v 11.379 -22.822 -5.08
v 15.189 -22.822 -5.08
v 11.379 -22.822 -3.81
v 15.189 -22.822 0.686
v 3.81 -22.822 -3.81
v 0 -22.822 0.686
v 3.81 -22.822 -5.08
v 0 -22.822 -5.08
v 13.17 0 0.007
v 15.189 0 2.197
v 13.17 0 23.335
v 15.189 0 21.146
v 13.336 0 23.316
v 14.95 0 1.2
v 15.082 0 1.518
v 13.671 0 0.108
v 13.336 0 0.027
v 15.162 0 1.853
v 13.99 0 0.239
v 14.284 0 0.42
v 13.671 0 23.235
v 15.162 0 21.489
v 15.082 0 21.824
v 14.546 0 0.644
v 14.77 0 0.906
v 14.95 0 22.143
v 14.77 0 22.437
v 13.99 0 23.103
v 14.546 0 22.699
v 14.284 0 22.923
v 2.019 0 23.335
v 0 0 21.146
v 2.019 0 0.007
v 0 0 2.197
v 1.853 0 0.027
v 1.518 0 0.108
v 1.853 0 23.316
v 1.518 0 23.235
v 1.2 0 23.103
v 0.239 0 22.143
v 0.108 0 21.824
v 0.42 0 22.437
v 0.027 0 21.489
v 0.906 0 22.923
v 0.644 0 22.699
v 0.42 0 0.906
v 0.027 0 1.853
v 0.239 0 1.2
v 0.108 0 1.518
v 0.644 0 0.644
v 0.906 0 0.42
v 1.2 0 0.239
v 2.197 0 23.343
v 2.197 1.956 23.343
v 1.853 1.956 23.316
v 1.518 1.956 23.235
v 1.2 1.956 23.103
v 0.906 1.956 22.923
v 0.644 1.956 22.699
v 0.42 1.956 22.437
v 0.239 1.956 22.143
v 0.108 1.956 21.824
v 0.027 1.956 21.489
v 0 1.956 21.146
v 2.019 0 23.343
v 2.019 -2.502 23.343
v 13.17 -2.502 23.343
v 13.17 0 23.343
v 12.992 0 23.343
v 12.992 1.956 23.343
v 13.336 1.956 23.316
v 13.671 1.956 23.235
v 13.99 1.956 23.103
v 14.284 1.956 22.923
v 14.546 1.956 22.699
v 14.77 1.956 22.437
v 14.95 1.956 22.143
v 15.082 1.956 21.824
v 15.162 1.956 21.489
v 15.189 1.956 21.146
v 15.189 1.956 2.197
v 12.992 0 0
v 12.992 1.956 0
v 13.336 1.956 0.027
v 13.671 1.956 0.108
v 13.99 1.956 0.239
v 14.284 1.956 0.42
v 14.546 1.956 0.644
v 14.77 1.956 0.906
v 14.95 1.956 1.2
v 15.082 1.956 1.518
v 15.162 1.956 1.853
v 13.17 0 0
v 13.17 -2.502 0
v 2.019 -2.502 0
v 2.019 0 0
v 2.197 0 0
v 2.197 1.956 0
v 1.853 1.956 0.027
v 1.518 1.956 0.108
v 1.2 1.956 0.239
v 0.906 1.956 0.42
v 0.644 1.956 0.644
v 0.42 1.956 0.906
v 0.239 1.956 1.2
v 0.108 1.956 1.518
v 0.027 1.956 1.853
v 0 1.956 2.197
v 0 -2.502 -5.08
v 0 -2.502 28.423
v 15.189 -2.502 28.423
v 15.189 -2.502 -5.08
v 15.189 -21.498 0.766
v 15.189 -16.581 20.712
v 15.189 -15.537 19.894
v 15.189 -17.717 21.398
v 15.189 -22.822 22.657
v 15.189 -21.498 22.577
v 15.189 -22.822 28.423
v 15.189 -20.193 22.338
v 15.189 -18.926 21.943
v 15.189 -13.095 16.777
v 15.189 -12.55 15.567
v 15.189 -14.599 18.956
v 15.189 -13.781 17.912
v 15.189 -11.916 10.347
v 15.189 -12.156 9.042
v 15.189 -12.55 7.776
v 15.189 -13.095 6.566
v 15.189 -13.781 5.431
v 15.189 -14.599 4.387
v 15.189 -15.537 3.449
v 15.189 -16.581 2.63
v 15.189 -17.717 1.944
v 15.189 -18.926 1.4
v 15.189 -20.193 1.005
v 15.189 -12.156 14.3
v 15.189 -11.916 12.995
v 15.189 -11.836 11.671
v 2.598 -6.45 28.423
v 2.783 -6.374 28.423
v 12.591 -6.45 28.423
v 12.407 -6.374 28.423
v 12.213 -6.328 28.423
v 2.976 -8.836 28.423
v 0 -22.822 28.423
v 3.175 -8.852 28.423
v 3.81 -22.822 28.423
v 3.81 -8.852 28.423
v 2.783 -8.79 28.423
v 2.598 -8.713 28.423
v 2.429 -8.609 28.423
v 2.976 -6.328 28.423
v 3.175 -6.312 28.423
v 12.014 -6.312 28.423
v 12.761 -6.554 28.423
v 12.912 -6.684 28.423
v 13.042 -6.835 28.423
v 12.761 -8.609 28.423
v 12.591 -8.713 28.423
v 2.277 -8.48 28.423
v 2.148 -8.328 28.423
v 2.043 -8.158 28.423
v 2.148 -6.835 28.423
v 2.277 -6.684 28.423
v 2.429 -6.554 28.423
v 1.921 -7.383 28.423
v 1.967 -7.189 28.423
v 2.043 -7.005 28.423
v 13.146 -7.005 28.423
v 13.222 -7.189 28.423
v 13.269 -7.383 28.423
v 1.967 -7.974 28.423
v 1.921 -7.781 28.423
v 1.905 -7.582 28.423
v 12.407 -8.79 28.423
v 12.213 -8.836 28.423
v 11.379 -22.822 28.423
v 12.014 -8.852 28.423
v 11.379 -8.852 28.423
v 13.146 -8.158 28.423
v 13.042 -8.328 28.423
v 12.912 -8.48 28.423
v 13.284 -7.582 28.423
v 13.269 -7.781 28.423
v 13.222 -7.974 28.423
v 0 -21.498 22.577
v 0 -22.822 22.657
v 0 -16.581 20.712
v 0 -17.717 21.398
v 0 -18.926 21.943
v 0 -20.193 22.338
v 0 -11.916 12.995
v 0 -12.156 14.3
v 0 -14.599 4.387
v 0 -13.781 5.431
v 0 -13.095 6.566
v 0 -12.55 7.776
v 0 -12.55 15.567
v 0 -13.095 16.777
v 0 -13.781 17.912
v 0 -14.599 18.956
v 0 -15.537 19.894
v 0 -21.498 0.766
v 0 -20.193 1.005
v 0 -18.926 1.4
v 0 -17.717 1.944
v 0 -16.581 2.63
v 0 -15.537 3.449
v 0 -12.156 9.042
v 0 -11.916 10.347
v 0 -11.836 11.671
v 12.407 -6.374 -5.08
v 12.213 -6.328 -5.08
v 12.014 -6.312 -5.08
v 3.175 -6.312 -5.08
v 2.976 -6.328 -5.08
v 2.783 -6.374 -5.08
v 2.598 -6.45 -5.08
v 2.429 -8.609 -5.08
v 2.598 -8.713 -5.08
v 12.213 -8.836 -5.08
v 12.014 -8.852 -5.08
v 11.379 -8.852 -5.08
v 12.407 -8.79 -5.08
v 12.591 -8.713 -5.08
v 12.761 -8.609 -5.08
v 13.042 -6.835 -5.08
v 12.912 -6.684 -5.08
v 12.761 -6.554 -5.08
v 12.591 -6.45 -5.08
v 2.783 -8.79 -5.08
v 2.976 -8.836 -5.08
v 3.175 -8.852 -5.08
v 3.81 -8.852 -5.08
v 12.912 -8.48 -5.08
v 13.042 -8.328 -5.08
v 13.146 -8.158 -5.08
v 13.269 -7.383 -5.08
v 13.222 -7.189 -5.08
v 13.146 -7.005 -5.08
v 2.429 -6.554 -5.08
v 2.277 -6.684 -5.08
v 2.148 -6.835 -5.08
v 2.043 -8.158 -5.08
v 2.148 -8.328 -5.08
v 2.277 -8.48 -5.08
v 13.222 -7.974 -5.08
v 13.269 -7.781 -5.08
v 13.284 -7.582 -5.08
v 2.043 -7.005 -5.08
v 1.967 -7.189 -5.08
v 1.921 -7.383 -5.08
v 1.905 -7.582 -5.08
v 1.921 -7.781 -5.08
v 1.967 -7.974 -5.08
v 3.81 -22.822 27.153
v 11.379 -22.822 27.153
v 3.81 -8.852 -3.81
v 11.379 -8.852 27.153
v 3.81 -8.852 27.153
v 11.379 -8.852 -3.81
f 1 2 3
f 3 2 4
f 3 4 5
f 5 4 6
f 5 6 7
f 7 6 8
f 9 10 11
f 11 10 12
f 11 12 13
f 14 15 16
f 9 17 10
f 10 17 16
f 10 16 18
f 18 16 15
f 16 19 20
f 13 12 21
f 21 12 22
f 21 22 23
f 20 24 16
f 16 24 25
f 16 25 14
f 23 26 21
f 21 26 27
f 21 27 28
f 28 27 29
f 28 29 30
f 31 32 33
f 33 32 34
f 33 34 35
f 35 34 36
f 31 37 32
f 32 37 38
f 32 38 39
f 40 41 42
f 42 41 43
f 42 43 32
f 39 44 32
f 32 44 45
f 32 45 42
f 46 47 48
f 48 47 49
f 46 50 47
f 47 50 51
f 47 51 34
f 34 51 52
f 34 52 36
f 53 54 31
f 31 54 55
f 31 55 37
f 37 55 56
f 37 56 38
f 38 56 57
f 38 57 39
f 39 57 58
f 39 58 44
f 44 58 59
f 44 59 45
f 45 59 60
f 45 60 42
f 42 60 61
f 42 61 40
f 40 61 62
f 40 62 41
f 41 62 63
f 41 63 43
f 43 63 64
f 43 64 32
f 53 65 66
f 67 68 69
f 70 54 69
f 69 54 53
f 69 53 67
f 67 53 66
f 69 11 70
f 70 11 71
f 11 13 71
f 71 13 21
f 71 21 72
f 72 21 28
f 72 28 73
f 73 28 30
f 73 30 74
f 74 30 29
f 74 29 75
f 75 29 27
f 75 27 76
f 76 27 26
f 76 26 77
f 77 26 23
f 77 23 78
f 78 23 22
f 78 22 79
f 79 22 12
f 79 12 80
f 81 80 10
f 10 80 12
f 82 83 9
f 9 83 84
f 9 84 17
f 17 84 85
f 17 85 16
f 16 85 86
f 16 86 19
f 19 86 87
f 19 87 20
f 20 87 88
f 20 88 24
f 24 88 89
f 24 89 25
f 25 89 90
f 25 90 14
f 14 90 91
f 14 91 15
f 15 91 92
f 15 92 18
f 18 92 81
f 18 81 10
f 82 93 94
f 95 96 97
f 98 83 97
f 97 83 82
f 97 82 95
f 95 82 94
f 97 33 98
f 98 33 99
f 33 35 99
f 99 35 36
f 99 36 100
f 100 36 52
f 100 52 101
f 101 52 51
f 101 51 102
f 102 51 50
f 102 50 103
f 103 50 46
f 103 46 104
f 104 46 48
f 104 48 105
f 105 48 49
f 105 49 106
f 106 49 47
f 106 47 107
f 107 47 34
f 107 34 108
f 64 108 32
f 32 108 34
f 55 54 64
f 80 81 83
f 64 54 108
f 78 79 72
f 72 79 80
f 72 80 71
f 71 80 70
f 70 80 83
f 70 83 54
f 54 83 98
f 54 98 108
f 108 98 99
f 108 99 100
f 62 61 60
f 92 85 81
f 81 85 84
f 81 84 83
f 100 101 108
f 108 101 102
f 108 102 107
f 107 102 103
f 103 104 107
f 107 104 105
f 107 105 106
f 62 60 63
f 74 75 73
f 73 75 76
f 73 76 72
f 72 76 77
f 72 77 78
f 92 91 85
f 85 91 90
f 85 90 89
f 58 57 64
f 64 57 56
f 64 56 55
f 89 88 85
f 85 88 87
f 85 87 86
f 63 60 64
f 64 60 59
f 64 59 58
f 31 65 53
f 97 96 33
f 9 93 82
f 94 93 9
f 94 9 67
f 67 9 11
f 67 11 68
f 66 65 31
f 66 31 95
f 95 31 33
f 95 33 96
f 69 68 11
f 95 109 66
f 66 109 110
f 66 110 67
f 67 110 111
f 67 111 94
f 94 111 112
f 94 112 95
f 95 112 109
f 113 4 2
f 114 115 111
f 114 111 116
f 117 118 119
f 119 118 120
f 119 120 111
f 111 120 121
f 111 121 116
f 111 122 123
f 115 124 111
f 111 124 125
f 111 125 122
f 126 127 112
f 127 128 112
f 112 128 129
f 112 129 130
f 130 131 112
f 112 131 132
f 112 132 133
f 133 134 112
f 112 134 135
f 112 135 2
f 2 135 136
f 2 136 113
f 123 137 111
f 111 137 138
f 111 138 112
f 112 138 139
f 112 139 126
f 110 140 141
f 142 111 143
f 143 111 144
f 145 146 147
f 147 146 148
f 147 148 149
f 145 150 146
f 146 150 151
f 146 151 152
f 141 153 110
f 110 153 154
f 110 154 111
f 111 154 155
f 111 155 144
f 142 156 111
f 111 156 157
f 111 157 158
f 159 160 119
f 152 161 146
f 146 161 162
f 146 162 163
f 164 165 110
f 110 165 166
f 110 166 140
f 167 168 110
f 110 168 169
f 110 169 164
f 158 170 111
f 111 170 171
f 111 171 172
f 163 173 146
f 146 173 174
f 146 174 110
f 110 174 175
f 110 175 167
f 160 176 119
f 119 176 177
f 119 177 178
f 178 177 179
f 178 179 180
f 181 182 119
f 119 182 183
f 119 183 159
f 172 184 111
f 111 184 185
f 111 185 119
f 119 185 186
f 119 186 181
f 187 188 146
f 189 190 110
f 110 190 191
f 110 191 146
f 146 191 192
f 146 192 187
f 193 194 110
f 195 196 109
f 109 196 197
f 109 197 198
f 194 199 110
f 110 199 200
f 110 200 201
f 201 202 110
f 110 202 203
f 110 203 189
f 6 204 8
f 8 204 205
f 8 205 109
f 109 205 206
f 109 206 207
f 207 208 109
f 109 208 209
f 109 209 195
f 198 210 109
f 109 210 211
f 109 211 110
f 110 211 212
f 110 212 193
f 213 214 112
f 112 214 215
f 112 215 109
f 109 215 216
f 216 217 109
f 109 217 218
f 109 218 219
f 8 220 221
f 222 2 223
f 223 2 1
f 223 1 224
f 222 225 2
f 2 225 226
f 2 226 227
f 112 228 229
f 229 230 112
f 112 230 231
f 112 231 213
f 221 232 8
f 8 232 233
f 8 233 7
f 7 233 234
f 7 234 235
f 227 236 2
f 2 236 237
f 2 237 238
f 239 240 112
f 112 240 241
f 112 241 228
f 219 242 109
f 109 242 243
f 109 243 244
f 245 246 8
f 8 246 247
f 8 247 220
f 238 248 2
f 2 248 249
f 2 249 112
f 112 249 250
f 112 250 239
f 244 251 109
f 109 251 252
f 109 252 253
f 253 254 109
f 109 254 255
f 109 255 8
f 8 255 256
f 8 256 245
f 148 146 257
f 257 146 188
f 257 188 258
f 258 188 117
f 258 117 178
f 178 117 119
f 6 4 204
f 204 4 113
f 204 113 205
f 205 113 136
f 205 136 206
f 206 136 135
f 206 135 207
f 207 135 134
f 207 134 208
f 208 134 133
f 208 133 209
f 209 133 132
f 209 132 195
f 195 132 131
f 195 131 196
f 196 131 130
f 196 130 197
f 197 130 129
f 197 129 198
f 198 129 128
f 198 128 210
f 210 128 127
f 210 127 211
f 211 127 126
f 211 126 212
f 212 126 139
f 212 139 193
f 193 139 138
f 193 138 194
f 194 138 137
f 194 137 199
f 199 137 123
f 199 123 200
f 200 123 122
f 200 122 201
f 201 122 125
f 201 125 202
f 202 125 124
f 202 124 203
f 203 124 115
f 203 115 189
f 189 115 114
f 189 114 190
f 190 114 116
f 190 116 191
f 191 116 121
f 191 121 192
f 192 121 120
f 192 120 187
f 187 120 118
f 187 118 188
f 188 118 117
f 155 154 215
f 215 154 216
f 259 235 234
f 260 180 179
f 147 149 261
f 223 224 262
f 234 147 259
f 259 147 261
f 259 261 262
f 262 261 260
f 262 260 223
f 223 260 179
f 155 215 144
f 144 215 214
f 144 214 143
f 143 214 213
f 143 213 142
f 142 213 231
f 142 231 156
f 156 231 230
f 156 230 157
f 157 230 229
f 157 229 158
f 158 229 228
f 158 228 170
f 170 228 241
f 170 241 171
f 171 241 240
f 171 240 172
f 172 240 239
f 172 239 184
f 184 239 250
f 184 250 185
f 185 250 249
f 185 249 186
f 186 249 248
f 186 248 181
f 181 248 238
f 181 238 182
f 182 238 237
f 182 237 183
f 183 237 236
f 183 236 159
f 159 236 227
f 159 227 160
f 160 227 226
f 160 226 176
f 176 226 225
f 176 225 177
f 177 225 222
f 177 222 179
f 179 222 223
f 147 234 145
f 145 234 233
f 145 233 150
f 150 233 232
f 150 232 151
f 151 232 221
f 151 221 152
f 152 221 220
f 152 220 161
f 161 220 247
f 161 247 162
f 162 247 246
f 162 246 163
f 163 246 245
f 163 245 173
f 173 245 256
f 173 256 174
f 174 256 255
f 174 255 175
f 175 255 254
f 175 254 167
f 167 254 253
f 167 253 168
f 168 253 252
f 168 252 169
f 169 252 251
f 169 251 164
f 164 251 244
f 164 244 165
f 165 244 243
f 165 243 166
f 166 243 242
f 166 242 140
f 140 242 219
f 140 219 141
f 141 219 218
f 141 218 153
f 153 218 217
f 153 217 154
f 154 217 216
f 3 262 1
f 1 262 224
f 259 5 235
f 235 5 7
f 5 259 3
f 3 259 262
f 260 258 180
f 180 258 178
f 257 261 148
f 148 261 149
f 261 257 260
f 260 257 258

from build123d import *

# Parameters (mm, degrees)
BOSS_EXTRUDE1_DEPTH = 1.9558
SKETCH2_W           = 11.1506
SKETCH2_H           = 23.3426
BOSS_EXTRUDE2_DEPTH = 2.5019
SKETCH3_W           = 15.1892
SKETCH3_H           = 33.5026
BOSS_EXTRUDE3_DEPTH = 20.32
SKETCH4_R           = 10.9855
CUT_EXTRUDE1_DEPTH  = 40.489177087
SKETCH5_W           = 11.3792
SKETCH5_H           = 2.54
CUT_EXTRUDE2_DEPTH  = 44.289434312
FILLET1_R           = 1.27
SKETCH6_W           = 7.5692
SKETCH6_H           = 13.97
CUT_EXTRUDE3_DEPTH  = 1.27
SKETCH7_W           = 7.5692
SKETCH7_H           = 13.97
CUT_EXTRUDE4_DEPTH  = 1.27


with BuildPart() as part:
    # Sketch1 → Boss-Extrude1 (new body)
    with BuildSketch(Plane(origin=(0, 0, 0), x_dir=(1, 0, 0), z_dir=(0, 1, 0))):
        with BuildLine():
            Line((2.1971, 0), (12.9921, 0))
            ThreePointArc((12.9921, 0), (14.545684309, -0.643515691), (15.1892, -2.1971))
            Line((15.1892, -2.1971), (15.1892, -21.1455))
            ThreePointArc((15.1892, -21.1455), (14.545684309, -22.699084309), (12.9921, -23.3426))
            Line((12.9921, -23.3426), (2.1971, -23.3426))
            ThreePointArc((2.1971, -23.3426), (0.643515691, -22.699084309), (0, -21.1455))
            Line((0, -21.1455), (0, -2.1971))
            ThreePointArc((0, -2.1971), (0.643515691, -0.643515691), (2.1971, 0))
        make_face()
    extrude(amount=BOSS_EXTRUDE1_DEPTH)

    # Sketch2 → Boss-Extrude2 (add)
    with BuildSketch(Plane.XZ):
        with Locations((7.5946, 11.6713)):
            Rectangle(SKETCH2_W, SKETCH2_H)
    extrude(amount=BOSS_EXTRUDE2_DEPTH)

    # Sketch3 → Boss-Extrude3 (add)
    with BuildSketch(Plane.XZ.offset(2.5019)):
        with Locations((7.5946, 11.6713)):
            Rectangle(SKETCH3_W, SKETCH3_H)
    extrude(amount=BOSS_EXTRUDE3_DEPTH)

    # Sketch4 → Cut-Extrude1 (cut, through all)
    with BuildSketch(Plane(origin=(15.1892, 0, 0), x_dir=(0, 0, -1), z_dir=(1, 0, 0))):
        with Locations((-11.6713, -22.8219)):
            Circle(SKETCH4_R)
    extrude(amount=-CUT_EXTRUDE1_DEPTH, mode=Mode.SUBTRACT)

    # Sketch5 → Cut-Extrude2 (cut, through all)
    with BuildSketch(Plane.XY.offset(28.4226)):
        with Locations((7.5946, -7.5819)):
            Rectangle(SKETCH5_W, SKETCH5_H)
    extrude(amount=-CUT_EXTRUDE2_DEPTH, mode=Mode.SUBTRACT)

    # Fillet1
    fillet1_edges = [part.edges().sort_by_distance(p)[0] for p in [
        (13.2842, -8.8519, 11.6713),
        (13.2842, -6.3119, 11.6713),
        (1.905, -6.3119, 11.6713),
        (1.905, -8.8519, 11.6713),
    ]]
    fillet(fillet1_edges, radius=FILLET1_R - 0.0001)  # a hair under: the kernel refuses the full size

    # Sketch6 → Cut-Extrude3 (cut)
    with BuildSketch(Plane(origin=(0, 0, -5.08), x_dir=(-1, 0, 0), z_dir=(0, 0, -1))):
        with Locations((-7.5946, -15.8369)):
            Rectangle(SKETCH6_W, SKETCH6_H)
    extrude(amount=-CUT_EXTRUDE3_DEPTH, mode=Mode.SUBTRACT)

    # Sketch7 → Cut-Extrude4 (cut)
    with BuildSketch(Plane.XY.offset(28.4226)):
        with Locations((7.5946, -15.8369)):
            Rectangle(SKETCH7_W, SKETCH7_H)
    extrude(amount=-CUT_EXTRUDE4_DEPTH, mode=Mode.SUBTRACT)


solid = part.part
